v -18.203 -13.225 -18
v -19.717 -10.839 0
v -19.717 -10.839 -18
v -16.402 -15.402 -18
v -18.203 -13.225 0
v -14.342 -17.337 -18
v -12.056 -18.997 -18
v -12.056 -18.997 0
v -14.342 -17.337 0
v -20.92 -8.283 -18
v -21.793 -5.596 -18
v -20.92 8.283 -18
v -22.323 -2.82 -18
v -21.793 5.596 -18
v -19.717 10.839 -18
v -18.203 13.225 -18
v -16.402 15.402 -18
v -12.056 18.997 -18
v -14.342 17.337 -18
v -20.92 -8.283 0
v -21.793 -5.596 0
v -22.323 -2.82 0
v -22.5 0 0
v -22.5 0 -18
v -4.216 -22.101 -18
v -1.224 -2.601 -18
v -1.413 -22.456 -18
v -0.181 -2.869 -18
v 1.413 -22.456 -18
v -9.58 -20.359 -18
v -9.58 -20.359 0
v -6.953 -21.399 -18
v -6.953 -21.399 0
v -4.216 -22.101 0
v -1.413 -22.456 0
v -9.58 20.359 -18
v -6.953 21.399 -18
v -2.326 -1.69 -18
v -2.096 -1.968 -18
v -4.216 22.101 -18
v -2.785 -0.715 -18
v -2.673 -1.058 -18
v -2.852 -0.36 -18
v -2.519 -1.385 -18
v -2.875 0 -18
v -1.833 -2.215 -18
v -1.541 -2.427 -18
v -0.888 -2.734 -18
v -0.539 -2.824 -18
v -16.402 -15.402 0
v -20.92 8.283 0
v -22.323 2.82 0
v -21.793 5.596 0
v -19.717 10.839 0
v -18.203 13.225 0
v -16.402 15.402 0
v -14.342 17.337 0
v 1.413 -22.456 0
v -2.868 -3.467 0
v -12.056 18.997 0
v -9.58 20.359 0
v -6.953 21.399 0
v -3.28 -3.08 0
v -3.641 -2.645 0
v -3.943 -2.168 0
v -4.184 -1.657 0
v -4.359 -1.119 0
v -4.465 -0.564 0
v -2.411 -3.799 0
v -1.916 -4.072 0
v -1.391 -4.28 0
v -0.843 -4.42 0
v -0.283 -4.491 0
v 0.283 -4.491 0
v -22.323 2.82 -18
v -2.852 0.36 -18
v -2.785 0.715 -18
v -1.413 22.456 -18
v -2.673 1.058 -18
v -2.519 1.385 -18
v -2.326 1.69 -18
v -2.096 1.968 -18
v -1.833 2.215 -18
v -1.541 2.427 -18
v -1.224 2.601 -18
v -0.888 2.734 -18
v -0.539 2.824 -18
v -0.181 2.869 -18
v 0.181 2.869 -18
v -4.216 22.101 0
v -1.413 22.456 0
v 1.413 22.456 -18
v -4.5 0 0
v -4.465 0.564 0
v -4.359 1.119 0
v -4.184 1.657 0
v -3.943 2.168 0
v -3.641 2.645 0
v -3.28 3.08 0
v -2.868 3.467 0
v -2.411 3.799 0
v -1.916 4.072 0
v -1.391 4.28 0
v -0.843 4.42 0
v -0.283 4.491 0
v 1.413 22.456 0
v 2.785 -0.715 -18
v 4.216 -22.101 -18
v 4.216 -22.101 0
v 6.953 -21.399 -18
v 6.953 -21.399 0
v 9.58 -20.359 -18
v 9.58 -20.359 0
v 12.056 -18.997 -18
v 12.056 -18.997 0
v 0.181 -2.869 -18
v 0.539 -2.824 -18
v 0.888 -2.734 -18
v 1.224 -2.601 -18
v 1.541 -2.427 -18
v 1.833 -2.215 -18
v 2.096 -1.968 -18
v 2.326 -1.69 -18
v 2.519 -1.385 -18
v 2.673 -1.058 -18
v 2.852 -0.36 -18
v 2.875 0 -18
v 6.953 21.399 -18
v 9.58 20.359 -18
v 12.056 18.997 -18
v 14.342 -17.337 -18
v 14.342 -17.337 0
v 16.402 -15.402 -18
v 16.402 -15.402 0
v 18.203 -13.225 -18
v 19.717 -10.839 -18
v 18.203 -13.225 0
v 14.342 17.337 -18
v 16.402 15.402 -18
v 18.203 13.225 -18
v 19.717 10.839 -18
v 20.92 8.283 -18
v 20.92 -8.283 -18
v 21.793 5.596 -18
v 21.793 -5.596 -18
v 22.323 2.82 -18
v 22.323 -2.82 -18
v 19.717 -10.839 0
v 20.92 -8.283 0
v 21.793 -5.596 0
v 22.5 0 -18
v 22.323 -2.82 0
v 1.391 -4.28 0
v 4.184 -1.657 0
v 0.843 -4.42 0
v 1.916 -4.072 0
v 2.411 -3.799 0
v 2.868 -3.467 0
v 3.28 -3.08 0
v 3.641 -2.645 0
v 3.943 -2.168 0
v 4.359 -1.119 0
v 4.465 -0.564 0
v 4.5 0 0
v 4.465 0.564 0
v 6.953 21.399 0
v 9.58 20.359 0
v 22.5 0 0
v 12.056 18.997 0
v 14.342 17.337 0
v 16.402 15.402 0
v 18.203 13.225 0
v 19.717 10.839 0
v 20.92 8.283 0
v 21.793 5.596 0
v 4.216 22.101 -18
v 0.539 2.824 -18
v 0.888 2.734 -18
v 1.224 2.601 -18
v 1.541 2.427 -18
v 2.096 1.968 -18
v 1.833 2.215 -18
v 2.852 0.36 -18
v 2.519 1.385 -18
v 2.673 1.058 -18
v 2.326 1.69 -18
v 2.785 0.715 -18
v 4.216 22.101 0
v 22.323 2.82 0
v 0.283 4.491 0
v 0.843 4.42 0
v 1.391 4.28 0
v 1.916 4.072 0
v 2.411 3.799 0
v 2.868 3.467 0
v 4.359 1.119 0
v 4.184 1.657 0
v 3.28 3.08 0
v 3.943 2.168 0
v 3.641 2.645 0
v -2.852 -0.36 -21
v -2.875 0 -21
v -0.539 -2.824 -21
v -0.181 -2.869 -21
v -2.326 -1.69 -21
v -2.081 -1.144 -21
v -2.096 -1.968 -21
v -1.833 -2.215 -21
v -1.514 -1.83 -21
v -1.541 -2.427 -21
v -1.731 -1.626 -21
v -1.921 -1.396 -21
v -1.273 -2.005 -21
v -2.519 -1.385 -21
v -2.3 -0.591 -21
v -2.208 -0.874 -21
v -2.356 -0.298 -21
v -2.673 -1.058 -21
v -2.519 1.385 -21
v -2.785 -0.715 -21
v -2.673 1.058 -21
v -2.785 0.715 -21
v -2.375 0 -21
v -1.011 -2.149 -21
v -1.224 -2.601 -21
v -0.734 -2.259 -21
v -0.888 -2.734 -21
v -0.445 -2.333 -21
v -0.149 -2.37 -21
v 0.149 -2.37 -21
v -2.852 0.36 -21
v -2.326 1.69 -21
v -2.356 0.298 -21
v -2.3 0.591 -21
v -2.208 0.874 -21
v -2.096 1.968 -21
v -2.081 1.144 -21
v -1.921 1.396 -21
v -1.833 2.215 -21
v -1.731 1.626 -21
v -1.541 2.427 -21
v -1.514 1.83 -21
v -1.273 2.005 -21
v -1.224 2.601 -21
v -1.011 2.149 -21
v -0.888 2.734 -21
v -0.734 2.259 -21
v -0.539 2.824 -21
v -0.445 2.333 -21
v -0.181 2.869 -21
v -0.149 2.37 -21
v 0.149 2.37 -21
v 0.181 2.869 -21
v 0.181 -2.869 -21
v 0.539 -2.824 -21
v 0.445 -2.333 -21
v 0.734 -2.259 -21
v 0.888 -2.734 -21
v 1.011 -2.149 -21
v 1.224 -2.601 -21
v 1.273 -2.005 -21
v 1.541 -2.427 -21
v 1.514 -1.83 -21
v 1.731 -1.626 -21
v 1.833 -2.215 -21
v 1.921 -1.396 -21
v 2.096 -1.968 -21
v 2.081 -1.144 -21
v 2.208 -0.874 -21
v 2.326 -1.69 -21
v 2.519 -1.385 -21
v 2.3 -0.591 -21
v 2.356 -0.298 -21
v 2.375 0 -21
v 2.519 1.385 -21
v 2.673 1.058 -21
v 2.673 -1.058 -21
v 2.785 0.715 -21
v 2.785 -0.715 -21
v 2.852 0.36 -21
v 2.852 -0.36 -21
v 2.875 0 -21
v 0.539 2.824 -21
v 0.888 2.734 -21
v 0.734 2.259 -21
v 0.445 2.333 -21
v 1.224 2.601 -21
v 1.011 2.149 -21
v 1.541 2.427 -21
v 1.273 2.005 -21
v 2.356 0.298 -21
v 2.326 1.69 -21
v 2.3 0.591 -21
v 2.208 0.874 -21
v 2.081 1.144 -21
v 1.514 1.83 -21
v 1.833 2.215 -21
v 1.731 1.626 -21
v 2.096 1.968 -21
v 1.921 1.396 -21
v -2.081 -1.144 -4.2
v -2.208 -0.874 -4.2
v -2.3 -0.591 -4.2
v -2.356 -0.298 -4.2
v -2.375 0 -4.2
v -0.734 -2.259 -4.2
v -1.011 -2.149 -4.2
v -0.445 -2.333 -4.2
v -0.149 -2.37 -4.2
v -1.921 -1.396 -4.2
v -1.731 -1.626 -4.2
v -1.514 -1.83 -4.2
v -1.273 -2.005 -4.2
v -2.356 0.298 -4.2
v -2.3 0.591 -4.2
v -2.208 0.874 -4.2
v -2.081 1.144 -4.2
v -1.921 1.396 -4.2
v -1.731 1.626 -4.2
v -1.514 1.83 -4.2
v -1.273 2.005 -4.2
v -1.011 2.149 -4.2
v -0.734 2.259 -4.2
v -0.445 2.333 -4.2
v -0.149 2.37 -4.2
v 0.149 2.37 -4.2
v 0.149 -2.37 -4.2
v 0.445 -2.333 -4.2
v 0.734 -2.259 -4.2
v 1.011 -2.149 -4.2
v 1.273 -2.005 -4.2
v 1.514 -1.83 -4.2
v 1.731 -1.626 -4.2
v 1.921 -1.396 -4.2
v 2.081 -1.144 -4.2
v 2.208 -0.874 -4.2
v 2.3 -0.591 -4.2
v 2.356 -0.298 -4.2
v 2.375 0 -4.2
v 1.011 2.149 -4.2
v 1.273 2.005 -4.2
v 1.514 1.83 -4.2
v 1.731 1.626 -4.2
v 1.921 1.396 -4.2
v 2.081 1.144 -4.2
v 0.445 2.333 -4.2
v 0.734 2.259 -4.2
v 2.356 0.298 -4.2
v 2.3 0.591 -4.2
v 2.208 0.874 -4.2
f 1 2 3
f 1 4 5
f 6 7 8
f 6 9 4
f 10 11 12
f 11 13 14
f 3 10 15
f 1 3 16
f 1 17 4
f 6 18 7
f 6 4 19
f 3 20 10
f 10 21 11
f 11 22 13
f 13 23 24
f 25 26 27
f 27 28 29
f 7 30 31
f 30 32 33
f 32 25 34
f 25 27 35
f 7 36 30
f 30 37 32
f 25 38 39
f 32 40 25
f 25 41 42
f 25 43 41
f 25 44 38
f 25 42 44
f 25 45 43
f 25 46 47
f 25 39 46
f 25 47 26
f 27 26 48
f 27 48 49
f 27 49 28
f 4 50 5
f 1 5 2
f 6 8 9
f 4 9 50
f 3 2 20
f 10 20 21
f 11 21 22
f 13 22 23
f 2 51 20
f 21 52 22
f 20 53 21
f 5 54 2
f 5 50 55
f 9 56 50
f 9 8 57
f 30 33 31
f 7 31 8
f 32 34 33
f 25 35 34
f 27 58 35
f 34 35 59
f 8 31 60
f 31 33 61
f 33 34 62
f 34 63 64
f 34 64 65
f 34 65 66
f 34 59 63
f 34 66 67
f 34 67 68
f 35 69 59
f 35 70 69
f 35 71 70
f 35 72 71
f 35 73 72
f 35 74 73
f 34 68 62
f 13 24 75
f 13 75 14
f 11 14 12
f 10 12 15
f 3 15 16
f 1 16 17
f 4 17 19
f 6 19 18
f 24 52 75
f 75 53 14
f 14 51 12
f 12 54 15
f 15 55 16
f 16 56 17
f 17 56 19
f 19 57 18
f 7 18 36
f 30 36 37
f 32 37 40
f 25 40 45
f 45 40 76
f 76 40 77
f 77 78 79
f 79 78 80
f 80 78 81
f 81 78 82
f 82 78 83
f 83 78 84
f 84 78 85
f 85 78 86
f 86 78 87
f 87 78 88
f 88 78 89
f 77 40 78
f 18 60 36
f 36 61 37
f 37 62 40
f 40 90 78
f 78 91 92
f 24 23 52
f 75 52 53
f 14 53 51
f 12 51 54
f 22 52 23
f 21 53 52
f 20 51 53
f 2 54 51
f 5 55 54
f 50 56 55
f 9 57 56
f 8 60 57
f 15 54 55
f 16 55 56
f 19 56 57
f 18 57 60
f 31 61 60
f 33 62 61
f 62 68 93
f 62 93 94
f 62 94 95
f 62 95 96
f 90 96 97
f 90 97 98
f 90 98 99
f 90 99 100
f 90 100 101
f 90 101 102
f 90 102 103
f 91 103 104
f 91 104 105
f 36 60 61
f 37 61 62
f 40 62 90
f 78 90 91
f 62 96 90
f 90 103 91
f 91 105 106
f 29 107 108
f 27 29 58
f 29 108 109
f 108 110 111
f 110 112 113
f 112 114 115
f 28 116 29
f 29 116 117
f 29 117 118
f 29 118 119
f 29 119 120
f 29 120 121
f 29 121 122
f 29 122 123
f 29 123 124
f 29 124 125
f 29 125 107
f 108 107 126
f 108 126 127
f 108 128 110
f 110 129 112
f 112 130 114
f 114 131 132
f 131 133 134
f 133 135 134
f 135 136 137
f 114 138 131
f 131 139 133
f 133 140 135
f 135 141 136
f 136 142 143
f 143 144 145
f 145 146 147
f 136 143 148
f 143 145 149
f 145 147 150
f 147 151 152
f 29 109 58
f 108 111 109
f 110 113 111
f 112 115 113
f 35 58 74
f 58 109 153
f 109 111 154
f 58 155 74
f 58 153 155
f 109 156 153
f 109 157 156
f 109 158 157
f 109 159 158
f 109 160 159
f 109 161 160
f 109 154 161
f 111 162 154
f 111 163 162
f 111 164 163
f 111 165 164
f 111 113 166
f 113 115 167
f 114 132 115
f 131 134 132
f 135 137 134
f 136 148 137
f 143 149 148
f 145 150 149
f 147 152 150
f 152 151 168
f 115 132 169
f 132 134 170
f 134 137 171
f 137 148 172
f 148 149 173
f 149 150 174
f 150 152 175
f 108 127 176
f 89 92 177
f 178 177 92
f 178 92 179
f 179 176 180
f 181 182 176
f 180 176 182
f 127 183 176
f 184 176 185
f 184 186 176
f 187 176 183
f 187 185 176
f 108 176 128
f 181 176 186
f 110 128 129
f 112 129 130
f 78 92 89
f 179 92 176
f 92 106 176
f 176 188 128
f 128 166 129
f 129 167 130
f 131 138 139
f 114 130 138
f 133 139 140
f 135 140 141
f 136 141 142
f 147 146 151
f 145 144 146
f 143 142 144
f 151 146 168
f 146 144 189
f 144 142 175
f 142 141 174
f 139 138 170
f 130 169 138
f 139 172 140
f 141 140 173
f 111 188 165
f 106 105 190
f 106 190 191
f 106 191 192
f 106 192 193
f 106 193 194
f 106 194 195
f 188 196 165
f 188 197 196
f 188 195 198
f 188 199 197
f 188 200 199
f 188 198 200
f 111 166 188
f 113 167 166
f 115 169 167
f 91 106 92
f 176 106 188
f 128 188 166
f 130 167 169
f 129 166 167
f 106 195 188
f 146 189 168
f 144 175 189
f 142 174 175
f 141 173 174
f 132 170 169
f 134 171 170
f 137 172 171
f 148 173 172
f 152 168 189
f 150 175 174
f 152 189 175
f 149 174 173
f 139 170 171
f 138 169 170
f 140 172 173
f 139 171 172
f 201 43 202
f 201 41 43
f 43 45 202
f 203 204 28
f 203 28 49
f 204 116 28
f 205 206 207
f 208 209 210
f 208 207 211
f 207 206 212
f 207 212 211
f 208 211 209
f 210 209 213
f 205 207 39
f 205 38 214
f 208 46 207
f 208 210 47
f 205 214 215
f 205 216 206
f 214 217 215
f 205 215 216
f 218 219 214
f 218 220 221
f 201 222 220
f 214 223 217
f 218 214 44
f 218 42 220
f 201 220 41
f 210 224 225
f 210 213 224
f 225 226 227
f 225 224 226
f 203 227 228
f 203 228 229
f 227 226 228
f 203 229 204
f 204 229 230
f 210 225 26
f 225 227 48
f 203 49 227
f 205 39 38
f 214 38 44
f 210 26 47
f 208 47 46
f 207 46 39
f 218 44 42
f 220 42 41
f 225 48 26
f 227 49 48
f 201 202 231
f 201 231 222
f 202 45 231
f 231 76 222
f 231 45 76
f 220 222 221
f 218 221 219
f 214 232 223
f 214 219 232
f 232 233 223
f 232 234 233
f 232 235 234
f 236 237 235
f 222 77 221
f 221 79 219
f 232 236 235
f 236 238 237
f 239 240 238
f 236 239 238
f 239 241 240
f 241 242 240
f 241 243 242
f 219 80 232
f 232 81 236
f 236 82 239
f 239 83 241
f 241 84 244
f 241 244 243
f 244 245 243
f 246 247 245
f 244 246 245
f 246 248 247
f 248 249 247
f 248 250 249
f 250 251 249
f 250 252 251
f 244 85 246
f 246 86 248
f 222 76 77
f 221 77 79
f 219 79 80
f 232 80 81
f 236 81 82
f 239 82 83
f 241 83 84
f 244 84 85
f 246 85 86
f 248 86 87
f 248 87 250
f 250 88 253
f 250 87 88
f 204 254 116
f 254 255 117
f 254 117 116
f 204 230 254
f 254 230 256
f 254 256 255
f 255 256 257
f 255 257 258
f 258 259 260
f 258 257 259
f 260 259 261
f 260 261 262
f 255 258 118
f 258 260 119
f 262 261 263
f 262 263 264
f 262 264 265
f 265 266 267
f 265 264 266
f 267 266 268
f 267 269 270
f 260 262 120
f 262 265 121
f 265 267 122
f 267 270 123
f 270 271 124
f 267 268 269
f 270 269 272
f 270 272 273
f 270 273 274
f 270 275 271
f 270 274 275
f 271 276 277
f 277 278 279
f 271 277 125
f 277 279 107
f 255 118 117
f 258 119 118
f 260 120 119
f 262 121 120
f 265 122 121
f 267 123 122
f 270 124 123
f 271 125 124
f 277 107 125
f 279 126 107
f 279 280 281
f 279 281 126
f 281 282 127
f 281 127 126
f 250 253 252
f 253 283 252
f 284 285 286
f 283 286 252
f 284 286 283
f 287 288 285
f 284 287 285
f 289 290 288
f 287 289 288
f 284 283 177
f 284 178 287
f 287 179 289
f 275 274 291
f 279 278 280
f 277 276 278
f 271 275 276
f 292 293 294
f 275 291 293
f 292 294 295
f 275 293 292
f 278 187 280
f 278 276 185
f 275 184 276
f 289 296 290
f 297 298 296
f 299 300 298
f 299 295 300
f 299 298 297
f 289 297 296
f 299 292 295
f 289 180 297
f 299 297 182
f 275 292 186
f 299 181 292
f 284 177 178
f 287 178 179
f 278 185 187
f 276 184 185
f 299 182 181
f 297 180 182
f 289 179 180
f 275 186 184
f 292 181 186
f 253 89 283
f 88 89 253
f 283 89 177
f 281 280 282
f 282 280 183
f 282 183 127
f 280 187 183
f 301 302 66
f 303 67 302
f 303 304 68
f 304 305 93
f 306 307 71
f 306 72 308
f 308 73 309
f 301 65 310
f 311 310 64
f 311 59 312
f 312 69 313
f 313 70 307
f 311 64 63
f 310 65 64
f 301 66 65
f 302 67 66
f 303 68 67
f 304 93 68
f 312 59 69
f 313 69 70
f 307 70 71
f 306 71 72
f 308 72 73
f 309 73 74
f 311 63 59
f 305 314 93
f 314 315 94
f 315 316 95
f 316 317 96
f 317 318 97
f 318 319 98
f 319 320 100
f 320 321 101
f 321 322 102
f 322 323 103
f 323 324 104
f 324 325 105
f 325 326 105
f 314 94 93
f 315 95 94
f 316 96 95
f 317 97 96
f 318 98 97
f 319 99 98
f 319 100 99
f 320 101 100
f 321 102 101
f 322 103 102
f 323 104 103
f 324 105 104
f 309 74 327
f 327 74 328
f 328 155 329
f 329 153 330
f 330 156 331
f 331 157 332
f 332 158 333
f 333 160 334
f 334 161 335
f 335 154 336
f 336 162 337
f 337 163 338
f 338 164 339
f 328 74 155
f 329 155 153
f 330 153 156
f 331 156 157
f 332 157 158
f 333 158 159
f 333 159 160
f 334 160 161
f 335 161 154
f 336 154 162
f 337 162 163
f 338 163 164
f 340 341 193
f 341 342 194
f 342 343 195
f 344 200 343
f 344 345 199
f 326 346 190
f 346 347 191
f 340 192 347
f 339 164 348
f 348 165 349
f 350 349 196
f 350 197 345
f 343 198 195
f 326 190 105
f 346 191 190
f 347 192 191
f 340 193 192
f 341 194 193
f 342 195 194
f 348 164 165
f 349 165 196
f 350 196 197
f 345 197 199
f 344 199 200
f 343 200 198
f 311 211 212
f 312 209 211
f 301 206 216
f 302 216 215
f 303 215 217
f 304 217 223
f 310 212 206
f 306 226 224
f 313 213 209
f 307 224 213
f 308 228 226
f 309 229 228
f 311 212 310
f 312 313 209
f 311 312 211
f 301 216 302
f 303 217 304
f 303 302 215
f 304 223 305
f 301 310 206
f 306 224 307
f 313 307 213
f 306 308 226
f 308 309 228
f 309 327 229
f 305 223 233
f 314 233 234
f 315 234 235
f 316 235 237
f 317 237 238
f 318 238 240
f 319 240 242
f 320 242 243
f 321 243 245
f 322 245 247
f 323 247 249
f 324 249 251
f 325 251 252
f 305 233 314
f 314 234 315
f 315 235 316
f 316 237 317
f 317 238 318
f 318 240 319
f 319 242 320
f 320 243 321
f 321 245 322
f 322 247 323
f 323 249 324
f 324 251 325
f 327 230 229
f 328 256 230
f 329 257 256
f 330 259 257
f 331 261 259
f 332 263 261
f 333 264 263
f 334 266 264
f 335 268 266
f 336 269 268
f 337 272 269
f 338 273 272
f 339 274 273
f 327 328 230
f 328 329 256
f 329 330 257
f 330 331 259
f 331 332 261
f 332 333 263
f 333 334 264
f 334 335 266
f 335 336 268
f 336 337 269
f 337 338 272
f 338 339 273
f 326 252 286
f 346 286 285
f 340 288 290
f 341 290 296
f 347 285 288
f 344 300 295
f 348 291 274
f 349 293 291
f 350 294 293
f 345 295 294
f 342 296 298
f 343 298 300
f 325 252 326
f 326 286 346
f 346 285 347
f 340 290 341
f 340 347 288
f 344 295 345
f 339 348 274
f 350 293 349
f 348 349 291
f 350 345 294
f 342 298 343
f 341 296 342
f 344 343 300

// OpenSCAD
$fn = 50;


difference() {
	union() {
		translate(v = [0, 0, -18.0000000000]) {
			cylinder(h = 18, r = 22.5000000000);
		}
		#translate(v = [0, 0, -21.0000000000]) {
			cylinder(h = 21, r = 2.8750000000);
		}
	}
	union() {
		translate(v = [0, 0, 0]) {
			rotate(a = [0, 0, 0]) {
				difference() {
					union() {
						translate(v = [0, 0, -21.0000000000]) {
							cylinder(h = 21, r = 2.2500000000);
						}
						translate(v = [0, 0, -4.2000000000]) {
							cylinder(h = 4.2000000000, r1 = 2.3750000000, r2 = 4.5000000000);
						}
						translate(v = [0, 0, -21.0000000000]) {
							cylinder(h = 21, r = 2.3750000000);
						}
						translate(v = [0, 0, -21.0000000000]) {
							cylinder(h = 21, r = 2.2500000000);
						}
					}
					union();
				}
			}
		}
	}
}
